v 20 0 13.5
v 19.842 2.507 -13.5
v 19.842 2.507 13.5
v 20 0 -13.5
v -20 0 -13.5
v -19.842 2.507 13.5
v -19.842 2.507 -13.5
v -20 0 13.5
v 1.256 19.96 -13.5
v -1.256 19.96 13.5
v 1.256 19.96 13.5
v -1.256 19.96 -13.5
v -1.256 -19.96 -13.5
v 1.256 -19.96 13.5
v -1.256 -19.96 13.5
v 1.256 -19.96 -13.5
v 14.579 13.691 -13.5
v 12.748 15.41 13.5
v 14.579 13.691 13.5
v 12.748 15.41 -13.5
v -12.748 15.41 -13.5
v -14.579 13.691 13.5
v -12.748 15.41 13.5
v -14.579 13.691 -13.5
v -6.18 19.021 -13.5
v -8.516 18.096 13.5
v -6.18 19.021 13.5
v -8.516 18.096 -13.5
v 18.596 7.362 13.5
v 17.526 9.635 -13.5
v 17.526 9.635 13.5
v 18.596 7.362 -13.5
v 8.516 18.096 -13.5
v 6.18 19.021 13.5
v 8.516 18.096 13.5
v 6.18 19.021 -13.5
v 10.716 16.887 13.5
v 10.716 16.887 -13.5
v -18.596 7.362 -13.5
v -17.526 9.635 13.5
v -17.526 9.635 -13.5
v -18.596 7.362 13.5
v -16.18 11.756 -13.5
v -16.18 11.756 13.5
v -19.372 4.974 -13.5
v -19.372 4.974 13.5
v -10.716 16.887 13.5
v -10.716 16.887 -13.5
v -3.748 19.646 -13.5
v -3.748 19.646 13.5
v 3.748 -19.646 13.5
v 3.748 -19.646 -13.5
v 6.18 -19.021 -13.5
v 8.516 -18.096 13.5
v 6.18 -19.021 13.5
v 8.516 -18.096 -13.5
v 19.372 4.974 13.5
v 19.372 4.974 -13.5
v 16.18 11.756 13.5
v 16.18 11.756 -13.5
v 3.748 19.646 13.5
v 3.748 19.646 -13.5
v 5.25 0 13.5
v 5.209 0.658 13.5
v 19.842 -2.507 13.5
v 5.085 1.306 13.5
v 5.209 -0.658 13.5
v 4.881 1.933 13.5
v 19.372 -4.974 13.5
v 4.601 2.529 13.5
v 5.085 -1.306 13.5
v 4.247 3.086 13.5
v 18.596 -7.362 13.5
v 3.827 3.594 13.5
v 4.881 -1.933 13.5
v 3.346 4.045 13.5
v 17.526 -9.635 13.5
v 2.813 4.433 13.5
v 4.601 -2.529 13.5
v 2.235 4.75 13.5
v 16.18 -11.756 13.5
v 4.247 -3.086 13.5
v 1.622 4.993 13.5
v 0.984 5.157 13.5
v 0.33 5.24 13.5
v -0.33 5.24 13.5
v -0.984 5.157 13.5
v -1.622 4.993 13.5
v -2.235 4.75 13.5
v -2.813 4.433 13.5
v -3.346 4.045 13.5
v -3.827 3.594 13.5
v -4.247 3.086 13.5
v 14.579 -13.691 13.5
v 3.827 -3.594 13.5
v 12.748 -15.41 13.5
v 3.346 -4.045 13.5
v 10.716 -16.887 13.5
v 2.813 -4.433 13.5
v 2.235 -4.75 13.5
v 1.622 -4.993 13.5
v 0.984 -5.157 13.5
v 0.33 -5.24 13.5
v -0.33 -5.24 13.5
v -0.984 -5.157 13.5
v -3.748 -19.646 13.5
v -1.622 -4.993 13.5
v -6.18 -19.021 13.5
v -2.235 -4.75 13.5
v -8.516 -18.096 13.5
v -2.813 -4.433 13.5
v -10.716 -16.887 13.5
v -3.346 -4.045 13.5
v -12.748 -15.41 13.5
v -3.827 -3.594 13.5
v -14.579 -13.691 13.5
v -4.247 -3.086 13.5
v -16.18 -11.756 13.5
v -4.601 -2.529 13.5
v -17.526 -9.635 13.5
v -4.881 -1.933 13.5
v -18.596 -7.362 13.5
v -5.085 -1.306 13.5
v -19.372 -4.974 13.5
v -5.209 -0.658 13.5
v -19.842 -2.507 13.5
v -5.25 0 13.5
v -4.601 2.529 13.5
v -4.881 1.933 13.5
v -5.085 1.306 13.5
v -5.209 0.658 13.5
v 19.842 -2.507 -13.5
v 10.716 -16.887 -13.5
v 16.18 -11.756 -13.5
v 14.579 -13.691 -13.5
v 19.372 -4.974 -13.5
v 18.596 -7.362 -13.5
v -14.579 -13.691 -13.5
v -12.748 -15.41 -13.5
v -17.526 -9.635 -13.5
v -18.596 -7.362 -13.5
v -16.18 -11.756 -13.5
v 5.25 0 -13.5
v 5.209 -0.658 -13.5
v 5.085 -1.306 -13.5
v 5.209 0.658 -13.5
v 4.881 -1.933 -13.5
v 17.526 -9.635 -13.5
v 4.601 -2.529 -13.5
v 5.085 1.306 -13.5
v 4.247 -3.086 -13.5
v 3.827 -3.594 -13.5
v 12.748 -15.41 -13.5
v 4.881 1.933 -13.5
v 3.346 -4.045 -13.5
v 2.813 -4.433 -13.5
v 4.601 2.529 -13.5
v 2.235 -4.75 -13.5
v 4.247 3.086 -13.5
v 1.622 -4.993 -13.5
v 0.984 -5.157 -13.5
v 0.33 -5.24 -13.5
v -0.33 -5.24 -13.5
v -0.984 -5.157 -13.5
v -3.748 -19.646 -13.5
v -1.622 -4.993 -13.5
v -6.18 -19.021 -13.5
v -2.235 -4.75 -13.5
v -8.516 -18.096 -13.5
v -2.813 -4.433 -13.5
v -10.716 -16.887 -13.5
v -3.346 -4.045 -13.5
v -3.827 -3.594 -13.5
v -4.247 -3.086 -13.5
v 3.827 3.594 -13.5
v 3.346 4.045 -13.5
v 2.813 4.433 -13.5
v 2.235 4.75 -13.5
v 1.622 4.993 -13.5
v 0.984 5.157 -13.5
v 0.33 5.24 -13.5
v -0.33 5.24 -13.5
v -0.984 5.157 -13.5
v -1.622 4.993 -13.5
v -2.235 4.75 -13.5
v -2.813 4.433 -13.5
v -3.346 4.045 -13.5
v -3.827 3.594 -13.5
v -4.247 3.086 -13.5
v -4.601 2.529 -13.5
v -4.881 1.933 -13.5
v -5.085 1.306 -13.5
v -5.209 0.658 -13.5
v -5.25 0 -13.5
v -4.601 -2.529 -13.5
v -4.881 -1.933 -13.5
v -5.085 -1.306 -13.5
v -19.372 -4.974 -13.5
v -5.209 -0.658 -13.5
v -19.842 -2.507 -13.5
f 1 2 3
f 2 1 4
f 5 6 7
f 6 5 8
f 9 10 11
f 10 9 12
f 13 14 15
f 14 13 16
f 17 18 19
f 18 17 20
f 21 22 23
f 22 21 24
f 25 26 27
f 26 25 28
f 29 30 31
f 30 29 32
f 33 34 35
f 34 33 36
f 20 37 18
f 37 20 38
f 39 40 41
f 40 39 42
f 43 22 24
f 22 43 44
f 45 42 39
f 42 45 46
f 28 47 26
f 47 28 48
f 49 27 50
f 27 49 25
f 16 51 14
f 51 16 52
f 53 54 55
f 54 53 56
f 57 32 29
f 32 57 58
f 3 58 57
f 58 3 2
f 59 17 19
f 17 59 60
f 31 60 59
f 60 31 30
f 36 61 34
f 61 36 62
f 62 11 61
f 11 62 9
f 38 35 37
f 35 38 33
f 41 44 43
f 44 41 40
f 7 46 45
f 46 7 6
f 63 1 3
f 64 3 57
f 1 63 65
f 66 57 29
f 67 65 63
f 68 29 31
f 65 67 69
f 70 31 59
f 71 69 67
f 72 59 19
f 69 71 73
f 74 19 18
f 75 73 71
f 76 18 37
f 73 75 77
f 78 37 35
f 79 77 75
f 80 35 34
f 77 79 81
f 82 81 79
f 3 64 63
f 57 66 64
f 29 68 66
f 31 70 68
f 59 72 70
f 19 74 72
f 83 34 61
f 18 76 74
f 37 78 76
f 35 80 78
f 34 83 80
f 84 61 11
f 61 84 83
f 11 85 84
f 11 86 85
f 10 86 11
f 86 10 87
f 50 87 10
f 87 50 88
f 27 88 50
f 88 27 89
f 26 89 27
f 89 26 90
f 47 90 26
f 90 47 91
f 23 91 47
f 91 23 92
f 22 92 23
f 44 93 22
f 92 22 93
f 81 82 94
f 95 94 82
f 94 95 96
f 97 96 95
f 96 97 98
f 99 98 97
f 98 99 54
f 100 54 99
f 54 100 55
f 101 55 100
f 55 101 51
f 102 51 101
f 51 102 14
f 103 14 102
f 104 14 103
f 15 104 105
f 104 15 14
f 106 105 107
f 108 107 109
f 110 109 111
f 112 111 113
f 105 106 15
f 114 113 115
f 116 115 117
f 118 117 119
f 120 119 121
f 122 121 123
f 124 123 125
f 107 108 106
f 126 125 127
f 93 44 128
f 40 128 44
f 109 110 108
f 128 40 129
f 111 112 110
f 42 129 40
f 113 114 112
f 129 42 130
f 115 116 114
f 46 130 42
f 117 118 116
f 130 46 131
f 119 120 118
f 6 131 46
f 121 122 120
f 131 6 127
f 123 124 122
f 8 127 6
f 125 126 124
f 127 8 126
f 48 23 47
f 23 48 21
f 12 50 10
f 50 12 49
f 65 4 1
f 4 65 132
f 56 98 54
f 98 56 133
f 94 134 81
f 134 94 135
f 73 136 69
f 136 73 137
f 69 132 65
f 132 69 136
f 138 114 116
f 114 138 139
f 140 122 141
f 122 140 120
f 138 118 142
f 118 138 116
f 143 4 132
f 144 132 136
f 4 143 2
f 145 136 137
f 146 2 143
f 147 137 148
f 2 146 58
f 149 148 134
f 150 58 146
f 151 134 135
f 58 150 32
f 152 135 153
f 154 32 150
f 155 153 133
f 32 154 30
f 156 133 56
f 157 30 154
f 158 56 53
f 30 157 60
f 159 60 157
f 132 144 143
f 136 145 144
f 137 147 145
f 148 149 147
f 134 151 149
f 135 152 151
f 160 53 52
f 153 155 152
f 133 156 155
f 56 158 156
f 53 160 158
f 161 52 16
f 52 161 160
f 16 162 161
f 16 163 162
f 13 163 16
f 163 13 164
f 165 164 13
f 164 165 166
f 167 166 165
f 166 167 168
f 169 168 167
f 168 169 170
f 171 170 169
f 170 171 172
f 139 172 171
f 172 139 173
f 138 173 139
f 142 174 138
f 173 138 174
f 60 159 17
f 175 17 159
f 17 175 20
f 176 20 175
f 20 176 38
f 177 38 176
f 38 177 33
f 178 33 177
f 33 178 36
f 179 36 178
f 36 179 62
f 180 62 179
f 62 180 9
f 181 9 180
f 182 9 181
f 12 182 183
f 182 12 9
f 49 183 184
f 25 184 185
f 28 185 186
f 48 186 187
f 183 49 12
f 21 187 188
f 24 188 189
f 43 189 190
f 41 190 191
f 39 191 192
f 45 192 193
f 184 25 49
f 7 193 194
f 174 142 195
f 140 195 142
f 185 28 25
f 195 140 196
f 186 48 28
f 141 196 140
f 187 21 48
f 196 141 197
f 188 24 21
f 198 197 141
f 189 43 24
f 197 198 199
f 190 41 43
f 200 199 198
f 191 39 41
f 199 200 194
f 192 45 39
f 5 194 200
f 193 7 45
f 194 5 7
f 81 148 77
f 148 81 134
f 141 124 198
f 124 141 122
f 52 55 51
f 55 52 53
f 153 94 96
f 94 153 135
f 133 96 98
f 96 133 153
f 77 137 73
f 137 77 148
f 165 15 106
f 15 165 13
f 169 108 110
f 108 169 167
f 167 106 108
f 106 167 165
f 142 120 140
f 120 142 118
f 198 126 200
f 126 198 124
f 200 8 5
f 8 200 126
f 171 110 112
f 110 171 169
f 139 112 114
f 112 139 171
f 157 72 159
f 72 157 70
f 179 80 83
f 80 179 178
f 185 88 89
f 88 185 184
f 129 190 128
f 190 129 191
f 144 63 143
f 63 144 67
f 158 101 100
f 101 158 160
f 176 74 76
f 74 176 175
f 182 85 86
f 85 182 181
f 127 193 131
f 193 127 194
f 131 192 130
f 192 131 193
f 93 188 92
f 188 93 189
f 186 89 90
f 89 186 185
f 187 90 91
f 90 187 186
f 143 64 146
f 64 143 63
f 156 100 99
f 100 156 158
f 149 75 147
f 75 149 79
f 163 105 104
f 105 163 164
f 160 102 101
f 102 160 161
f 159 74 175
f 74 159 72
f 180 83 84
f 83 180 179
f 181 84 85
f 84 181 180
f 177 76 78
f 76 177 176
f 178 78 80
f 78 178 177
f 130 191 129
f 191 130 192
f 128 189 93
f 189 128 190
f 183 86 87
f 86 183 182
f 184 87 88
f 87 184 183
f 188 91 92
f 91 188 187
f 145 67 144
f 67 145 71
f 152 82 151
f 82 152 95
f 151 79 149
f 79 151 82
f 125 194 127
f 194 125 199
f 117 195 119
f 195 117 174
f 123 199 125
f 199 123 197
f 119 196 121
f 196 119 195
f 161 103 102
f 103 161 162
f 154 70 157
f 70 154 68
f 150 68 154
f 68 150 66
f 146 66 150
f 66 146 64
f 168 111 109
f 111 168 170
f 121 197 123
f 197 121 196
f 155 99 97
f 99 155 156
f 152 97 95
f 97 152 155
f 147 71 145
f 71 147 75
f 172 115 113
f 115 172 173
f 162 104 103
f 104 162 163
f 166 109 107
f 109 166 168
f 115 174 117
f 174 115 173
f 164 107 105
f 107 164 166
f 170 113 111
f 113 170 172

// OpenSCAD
$fn = 50;


difference() {
	union() {
		translate(v = [0, 0, -13.5000000000]) {
			cylinder(h = 27, r = 20.0000000000);
		}
	}
	union() {
		translate(v = [0, 0, -100.0000000000]) {
			cylinder(h = 200, r = 5.2500000000);
		}
	}
}
